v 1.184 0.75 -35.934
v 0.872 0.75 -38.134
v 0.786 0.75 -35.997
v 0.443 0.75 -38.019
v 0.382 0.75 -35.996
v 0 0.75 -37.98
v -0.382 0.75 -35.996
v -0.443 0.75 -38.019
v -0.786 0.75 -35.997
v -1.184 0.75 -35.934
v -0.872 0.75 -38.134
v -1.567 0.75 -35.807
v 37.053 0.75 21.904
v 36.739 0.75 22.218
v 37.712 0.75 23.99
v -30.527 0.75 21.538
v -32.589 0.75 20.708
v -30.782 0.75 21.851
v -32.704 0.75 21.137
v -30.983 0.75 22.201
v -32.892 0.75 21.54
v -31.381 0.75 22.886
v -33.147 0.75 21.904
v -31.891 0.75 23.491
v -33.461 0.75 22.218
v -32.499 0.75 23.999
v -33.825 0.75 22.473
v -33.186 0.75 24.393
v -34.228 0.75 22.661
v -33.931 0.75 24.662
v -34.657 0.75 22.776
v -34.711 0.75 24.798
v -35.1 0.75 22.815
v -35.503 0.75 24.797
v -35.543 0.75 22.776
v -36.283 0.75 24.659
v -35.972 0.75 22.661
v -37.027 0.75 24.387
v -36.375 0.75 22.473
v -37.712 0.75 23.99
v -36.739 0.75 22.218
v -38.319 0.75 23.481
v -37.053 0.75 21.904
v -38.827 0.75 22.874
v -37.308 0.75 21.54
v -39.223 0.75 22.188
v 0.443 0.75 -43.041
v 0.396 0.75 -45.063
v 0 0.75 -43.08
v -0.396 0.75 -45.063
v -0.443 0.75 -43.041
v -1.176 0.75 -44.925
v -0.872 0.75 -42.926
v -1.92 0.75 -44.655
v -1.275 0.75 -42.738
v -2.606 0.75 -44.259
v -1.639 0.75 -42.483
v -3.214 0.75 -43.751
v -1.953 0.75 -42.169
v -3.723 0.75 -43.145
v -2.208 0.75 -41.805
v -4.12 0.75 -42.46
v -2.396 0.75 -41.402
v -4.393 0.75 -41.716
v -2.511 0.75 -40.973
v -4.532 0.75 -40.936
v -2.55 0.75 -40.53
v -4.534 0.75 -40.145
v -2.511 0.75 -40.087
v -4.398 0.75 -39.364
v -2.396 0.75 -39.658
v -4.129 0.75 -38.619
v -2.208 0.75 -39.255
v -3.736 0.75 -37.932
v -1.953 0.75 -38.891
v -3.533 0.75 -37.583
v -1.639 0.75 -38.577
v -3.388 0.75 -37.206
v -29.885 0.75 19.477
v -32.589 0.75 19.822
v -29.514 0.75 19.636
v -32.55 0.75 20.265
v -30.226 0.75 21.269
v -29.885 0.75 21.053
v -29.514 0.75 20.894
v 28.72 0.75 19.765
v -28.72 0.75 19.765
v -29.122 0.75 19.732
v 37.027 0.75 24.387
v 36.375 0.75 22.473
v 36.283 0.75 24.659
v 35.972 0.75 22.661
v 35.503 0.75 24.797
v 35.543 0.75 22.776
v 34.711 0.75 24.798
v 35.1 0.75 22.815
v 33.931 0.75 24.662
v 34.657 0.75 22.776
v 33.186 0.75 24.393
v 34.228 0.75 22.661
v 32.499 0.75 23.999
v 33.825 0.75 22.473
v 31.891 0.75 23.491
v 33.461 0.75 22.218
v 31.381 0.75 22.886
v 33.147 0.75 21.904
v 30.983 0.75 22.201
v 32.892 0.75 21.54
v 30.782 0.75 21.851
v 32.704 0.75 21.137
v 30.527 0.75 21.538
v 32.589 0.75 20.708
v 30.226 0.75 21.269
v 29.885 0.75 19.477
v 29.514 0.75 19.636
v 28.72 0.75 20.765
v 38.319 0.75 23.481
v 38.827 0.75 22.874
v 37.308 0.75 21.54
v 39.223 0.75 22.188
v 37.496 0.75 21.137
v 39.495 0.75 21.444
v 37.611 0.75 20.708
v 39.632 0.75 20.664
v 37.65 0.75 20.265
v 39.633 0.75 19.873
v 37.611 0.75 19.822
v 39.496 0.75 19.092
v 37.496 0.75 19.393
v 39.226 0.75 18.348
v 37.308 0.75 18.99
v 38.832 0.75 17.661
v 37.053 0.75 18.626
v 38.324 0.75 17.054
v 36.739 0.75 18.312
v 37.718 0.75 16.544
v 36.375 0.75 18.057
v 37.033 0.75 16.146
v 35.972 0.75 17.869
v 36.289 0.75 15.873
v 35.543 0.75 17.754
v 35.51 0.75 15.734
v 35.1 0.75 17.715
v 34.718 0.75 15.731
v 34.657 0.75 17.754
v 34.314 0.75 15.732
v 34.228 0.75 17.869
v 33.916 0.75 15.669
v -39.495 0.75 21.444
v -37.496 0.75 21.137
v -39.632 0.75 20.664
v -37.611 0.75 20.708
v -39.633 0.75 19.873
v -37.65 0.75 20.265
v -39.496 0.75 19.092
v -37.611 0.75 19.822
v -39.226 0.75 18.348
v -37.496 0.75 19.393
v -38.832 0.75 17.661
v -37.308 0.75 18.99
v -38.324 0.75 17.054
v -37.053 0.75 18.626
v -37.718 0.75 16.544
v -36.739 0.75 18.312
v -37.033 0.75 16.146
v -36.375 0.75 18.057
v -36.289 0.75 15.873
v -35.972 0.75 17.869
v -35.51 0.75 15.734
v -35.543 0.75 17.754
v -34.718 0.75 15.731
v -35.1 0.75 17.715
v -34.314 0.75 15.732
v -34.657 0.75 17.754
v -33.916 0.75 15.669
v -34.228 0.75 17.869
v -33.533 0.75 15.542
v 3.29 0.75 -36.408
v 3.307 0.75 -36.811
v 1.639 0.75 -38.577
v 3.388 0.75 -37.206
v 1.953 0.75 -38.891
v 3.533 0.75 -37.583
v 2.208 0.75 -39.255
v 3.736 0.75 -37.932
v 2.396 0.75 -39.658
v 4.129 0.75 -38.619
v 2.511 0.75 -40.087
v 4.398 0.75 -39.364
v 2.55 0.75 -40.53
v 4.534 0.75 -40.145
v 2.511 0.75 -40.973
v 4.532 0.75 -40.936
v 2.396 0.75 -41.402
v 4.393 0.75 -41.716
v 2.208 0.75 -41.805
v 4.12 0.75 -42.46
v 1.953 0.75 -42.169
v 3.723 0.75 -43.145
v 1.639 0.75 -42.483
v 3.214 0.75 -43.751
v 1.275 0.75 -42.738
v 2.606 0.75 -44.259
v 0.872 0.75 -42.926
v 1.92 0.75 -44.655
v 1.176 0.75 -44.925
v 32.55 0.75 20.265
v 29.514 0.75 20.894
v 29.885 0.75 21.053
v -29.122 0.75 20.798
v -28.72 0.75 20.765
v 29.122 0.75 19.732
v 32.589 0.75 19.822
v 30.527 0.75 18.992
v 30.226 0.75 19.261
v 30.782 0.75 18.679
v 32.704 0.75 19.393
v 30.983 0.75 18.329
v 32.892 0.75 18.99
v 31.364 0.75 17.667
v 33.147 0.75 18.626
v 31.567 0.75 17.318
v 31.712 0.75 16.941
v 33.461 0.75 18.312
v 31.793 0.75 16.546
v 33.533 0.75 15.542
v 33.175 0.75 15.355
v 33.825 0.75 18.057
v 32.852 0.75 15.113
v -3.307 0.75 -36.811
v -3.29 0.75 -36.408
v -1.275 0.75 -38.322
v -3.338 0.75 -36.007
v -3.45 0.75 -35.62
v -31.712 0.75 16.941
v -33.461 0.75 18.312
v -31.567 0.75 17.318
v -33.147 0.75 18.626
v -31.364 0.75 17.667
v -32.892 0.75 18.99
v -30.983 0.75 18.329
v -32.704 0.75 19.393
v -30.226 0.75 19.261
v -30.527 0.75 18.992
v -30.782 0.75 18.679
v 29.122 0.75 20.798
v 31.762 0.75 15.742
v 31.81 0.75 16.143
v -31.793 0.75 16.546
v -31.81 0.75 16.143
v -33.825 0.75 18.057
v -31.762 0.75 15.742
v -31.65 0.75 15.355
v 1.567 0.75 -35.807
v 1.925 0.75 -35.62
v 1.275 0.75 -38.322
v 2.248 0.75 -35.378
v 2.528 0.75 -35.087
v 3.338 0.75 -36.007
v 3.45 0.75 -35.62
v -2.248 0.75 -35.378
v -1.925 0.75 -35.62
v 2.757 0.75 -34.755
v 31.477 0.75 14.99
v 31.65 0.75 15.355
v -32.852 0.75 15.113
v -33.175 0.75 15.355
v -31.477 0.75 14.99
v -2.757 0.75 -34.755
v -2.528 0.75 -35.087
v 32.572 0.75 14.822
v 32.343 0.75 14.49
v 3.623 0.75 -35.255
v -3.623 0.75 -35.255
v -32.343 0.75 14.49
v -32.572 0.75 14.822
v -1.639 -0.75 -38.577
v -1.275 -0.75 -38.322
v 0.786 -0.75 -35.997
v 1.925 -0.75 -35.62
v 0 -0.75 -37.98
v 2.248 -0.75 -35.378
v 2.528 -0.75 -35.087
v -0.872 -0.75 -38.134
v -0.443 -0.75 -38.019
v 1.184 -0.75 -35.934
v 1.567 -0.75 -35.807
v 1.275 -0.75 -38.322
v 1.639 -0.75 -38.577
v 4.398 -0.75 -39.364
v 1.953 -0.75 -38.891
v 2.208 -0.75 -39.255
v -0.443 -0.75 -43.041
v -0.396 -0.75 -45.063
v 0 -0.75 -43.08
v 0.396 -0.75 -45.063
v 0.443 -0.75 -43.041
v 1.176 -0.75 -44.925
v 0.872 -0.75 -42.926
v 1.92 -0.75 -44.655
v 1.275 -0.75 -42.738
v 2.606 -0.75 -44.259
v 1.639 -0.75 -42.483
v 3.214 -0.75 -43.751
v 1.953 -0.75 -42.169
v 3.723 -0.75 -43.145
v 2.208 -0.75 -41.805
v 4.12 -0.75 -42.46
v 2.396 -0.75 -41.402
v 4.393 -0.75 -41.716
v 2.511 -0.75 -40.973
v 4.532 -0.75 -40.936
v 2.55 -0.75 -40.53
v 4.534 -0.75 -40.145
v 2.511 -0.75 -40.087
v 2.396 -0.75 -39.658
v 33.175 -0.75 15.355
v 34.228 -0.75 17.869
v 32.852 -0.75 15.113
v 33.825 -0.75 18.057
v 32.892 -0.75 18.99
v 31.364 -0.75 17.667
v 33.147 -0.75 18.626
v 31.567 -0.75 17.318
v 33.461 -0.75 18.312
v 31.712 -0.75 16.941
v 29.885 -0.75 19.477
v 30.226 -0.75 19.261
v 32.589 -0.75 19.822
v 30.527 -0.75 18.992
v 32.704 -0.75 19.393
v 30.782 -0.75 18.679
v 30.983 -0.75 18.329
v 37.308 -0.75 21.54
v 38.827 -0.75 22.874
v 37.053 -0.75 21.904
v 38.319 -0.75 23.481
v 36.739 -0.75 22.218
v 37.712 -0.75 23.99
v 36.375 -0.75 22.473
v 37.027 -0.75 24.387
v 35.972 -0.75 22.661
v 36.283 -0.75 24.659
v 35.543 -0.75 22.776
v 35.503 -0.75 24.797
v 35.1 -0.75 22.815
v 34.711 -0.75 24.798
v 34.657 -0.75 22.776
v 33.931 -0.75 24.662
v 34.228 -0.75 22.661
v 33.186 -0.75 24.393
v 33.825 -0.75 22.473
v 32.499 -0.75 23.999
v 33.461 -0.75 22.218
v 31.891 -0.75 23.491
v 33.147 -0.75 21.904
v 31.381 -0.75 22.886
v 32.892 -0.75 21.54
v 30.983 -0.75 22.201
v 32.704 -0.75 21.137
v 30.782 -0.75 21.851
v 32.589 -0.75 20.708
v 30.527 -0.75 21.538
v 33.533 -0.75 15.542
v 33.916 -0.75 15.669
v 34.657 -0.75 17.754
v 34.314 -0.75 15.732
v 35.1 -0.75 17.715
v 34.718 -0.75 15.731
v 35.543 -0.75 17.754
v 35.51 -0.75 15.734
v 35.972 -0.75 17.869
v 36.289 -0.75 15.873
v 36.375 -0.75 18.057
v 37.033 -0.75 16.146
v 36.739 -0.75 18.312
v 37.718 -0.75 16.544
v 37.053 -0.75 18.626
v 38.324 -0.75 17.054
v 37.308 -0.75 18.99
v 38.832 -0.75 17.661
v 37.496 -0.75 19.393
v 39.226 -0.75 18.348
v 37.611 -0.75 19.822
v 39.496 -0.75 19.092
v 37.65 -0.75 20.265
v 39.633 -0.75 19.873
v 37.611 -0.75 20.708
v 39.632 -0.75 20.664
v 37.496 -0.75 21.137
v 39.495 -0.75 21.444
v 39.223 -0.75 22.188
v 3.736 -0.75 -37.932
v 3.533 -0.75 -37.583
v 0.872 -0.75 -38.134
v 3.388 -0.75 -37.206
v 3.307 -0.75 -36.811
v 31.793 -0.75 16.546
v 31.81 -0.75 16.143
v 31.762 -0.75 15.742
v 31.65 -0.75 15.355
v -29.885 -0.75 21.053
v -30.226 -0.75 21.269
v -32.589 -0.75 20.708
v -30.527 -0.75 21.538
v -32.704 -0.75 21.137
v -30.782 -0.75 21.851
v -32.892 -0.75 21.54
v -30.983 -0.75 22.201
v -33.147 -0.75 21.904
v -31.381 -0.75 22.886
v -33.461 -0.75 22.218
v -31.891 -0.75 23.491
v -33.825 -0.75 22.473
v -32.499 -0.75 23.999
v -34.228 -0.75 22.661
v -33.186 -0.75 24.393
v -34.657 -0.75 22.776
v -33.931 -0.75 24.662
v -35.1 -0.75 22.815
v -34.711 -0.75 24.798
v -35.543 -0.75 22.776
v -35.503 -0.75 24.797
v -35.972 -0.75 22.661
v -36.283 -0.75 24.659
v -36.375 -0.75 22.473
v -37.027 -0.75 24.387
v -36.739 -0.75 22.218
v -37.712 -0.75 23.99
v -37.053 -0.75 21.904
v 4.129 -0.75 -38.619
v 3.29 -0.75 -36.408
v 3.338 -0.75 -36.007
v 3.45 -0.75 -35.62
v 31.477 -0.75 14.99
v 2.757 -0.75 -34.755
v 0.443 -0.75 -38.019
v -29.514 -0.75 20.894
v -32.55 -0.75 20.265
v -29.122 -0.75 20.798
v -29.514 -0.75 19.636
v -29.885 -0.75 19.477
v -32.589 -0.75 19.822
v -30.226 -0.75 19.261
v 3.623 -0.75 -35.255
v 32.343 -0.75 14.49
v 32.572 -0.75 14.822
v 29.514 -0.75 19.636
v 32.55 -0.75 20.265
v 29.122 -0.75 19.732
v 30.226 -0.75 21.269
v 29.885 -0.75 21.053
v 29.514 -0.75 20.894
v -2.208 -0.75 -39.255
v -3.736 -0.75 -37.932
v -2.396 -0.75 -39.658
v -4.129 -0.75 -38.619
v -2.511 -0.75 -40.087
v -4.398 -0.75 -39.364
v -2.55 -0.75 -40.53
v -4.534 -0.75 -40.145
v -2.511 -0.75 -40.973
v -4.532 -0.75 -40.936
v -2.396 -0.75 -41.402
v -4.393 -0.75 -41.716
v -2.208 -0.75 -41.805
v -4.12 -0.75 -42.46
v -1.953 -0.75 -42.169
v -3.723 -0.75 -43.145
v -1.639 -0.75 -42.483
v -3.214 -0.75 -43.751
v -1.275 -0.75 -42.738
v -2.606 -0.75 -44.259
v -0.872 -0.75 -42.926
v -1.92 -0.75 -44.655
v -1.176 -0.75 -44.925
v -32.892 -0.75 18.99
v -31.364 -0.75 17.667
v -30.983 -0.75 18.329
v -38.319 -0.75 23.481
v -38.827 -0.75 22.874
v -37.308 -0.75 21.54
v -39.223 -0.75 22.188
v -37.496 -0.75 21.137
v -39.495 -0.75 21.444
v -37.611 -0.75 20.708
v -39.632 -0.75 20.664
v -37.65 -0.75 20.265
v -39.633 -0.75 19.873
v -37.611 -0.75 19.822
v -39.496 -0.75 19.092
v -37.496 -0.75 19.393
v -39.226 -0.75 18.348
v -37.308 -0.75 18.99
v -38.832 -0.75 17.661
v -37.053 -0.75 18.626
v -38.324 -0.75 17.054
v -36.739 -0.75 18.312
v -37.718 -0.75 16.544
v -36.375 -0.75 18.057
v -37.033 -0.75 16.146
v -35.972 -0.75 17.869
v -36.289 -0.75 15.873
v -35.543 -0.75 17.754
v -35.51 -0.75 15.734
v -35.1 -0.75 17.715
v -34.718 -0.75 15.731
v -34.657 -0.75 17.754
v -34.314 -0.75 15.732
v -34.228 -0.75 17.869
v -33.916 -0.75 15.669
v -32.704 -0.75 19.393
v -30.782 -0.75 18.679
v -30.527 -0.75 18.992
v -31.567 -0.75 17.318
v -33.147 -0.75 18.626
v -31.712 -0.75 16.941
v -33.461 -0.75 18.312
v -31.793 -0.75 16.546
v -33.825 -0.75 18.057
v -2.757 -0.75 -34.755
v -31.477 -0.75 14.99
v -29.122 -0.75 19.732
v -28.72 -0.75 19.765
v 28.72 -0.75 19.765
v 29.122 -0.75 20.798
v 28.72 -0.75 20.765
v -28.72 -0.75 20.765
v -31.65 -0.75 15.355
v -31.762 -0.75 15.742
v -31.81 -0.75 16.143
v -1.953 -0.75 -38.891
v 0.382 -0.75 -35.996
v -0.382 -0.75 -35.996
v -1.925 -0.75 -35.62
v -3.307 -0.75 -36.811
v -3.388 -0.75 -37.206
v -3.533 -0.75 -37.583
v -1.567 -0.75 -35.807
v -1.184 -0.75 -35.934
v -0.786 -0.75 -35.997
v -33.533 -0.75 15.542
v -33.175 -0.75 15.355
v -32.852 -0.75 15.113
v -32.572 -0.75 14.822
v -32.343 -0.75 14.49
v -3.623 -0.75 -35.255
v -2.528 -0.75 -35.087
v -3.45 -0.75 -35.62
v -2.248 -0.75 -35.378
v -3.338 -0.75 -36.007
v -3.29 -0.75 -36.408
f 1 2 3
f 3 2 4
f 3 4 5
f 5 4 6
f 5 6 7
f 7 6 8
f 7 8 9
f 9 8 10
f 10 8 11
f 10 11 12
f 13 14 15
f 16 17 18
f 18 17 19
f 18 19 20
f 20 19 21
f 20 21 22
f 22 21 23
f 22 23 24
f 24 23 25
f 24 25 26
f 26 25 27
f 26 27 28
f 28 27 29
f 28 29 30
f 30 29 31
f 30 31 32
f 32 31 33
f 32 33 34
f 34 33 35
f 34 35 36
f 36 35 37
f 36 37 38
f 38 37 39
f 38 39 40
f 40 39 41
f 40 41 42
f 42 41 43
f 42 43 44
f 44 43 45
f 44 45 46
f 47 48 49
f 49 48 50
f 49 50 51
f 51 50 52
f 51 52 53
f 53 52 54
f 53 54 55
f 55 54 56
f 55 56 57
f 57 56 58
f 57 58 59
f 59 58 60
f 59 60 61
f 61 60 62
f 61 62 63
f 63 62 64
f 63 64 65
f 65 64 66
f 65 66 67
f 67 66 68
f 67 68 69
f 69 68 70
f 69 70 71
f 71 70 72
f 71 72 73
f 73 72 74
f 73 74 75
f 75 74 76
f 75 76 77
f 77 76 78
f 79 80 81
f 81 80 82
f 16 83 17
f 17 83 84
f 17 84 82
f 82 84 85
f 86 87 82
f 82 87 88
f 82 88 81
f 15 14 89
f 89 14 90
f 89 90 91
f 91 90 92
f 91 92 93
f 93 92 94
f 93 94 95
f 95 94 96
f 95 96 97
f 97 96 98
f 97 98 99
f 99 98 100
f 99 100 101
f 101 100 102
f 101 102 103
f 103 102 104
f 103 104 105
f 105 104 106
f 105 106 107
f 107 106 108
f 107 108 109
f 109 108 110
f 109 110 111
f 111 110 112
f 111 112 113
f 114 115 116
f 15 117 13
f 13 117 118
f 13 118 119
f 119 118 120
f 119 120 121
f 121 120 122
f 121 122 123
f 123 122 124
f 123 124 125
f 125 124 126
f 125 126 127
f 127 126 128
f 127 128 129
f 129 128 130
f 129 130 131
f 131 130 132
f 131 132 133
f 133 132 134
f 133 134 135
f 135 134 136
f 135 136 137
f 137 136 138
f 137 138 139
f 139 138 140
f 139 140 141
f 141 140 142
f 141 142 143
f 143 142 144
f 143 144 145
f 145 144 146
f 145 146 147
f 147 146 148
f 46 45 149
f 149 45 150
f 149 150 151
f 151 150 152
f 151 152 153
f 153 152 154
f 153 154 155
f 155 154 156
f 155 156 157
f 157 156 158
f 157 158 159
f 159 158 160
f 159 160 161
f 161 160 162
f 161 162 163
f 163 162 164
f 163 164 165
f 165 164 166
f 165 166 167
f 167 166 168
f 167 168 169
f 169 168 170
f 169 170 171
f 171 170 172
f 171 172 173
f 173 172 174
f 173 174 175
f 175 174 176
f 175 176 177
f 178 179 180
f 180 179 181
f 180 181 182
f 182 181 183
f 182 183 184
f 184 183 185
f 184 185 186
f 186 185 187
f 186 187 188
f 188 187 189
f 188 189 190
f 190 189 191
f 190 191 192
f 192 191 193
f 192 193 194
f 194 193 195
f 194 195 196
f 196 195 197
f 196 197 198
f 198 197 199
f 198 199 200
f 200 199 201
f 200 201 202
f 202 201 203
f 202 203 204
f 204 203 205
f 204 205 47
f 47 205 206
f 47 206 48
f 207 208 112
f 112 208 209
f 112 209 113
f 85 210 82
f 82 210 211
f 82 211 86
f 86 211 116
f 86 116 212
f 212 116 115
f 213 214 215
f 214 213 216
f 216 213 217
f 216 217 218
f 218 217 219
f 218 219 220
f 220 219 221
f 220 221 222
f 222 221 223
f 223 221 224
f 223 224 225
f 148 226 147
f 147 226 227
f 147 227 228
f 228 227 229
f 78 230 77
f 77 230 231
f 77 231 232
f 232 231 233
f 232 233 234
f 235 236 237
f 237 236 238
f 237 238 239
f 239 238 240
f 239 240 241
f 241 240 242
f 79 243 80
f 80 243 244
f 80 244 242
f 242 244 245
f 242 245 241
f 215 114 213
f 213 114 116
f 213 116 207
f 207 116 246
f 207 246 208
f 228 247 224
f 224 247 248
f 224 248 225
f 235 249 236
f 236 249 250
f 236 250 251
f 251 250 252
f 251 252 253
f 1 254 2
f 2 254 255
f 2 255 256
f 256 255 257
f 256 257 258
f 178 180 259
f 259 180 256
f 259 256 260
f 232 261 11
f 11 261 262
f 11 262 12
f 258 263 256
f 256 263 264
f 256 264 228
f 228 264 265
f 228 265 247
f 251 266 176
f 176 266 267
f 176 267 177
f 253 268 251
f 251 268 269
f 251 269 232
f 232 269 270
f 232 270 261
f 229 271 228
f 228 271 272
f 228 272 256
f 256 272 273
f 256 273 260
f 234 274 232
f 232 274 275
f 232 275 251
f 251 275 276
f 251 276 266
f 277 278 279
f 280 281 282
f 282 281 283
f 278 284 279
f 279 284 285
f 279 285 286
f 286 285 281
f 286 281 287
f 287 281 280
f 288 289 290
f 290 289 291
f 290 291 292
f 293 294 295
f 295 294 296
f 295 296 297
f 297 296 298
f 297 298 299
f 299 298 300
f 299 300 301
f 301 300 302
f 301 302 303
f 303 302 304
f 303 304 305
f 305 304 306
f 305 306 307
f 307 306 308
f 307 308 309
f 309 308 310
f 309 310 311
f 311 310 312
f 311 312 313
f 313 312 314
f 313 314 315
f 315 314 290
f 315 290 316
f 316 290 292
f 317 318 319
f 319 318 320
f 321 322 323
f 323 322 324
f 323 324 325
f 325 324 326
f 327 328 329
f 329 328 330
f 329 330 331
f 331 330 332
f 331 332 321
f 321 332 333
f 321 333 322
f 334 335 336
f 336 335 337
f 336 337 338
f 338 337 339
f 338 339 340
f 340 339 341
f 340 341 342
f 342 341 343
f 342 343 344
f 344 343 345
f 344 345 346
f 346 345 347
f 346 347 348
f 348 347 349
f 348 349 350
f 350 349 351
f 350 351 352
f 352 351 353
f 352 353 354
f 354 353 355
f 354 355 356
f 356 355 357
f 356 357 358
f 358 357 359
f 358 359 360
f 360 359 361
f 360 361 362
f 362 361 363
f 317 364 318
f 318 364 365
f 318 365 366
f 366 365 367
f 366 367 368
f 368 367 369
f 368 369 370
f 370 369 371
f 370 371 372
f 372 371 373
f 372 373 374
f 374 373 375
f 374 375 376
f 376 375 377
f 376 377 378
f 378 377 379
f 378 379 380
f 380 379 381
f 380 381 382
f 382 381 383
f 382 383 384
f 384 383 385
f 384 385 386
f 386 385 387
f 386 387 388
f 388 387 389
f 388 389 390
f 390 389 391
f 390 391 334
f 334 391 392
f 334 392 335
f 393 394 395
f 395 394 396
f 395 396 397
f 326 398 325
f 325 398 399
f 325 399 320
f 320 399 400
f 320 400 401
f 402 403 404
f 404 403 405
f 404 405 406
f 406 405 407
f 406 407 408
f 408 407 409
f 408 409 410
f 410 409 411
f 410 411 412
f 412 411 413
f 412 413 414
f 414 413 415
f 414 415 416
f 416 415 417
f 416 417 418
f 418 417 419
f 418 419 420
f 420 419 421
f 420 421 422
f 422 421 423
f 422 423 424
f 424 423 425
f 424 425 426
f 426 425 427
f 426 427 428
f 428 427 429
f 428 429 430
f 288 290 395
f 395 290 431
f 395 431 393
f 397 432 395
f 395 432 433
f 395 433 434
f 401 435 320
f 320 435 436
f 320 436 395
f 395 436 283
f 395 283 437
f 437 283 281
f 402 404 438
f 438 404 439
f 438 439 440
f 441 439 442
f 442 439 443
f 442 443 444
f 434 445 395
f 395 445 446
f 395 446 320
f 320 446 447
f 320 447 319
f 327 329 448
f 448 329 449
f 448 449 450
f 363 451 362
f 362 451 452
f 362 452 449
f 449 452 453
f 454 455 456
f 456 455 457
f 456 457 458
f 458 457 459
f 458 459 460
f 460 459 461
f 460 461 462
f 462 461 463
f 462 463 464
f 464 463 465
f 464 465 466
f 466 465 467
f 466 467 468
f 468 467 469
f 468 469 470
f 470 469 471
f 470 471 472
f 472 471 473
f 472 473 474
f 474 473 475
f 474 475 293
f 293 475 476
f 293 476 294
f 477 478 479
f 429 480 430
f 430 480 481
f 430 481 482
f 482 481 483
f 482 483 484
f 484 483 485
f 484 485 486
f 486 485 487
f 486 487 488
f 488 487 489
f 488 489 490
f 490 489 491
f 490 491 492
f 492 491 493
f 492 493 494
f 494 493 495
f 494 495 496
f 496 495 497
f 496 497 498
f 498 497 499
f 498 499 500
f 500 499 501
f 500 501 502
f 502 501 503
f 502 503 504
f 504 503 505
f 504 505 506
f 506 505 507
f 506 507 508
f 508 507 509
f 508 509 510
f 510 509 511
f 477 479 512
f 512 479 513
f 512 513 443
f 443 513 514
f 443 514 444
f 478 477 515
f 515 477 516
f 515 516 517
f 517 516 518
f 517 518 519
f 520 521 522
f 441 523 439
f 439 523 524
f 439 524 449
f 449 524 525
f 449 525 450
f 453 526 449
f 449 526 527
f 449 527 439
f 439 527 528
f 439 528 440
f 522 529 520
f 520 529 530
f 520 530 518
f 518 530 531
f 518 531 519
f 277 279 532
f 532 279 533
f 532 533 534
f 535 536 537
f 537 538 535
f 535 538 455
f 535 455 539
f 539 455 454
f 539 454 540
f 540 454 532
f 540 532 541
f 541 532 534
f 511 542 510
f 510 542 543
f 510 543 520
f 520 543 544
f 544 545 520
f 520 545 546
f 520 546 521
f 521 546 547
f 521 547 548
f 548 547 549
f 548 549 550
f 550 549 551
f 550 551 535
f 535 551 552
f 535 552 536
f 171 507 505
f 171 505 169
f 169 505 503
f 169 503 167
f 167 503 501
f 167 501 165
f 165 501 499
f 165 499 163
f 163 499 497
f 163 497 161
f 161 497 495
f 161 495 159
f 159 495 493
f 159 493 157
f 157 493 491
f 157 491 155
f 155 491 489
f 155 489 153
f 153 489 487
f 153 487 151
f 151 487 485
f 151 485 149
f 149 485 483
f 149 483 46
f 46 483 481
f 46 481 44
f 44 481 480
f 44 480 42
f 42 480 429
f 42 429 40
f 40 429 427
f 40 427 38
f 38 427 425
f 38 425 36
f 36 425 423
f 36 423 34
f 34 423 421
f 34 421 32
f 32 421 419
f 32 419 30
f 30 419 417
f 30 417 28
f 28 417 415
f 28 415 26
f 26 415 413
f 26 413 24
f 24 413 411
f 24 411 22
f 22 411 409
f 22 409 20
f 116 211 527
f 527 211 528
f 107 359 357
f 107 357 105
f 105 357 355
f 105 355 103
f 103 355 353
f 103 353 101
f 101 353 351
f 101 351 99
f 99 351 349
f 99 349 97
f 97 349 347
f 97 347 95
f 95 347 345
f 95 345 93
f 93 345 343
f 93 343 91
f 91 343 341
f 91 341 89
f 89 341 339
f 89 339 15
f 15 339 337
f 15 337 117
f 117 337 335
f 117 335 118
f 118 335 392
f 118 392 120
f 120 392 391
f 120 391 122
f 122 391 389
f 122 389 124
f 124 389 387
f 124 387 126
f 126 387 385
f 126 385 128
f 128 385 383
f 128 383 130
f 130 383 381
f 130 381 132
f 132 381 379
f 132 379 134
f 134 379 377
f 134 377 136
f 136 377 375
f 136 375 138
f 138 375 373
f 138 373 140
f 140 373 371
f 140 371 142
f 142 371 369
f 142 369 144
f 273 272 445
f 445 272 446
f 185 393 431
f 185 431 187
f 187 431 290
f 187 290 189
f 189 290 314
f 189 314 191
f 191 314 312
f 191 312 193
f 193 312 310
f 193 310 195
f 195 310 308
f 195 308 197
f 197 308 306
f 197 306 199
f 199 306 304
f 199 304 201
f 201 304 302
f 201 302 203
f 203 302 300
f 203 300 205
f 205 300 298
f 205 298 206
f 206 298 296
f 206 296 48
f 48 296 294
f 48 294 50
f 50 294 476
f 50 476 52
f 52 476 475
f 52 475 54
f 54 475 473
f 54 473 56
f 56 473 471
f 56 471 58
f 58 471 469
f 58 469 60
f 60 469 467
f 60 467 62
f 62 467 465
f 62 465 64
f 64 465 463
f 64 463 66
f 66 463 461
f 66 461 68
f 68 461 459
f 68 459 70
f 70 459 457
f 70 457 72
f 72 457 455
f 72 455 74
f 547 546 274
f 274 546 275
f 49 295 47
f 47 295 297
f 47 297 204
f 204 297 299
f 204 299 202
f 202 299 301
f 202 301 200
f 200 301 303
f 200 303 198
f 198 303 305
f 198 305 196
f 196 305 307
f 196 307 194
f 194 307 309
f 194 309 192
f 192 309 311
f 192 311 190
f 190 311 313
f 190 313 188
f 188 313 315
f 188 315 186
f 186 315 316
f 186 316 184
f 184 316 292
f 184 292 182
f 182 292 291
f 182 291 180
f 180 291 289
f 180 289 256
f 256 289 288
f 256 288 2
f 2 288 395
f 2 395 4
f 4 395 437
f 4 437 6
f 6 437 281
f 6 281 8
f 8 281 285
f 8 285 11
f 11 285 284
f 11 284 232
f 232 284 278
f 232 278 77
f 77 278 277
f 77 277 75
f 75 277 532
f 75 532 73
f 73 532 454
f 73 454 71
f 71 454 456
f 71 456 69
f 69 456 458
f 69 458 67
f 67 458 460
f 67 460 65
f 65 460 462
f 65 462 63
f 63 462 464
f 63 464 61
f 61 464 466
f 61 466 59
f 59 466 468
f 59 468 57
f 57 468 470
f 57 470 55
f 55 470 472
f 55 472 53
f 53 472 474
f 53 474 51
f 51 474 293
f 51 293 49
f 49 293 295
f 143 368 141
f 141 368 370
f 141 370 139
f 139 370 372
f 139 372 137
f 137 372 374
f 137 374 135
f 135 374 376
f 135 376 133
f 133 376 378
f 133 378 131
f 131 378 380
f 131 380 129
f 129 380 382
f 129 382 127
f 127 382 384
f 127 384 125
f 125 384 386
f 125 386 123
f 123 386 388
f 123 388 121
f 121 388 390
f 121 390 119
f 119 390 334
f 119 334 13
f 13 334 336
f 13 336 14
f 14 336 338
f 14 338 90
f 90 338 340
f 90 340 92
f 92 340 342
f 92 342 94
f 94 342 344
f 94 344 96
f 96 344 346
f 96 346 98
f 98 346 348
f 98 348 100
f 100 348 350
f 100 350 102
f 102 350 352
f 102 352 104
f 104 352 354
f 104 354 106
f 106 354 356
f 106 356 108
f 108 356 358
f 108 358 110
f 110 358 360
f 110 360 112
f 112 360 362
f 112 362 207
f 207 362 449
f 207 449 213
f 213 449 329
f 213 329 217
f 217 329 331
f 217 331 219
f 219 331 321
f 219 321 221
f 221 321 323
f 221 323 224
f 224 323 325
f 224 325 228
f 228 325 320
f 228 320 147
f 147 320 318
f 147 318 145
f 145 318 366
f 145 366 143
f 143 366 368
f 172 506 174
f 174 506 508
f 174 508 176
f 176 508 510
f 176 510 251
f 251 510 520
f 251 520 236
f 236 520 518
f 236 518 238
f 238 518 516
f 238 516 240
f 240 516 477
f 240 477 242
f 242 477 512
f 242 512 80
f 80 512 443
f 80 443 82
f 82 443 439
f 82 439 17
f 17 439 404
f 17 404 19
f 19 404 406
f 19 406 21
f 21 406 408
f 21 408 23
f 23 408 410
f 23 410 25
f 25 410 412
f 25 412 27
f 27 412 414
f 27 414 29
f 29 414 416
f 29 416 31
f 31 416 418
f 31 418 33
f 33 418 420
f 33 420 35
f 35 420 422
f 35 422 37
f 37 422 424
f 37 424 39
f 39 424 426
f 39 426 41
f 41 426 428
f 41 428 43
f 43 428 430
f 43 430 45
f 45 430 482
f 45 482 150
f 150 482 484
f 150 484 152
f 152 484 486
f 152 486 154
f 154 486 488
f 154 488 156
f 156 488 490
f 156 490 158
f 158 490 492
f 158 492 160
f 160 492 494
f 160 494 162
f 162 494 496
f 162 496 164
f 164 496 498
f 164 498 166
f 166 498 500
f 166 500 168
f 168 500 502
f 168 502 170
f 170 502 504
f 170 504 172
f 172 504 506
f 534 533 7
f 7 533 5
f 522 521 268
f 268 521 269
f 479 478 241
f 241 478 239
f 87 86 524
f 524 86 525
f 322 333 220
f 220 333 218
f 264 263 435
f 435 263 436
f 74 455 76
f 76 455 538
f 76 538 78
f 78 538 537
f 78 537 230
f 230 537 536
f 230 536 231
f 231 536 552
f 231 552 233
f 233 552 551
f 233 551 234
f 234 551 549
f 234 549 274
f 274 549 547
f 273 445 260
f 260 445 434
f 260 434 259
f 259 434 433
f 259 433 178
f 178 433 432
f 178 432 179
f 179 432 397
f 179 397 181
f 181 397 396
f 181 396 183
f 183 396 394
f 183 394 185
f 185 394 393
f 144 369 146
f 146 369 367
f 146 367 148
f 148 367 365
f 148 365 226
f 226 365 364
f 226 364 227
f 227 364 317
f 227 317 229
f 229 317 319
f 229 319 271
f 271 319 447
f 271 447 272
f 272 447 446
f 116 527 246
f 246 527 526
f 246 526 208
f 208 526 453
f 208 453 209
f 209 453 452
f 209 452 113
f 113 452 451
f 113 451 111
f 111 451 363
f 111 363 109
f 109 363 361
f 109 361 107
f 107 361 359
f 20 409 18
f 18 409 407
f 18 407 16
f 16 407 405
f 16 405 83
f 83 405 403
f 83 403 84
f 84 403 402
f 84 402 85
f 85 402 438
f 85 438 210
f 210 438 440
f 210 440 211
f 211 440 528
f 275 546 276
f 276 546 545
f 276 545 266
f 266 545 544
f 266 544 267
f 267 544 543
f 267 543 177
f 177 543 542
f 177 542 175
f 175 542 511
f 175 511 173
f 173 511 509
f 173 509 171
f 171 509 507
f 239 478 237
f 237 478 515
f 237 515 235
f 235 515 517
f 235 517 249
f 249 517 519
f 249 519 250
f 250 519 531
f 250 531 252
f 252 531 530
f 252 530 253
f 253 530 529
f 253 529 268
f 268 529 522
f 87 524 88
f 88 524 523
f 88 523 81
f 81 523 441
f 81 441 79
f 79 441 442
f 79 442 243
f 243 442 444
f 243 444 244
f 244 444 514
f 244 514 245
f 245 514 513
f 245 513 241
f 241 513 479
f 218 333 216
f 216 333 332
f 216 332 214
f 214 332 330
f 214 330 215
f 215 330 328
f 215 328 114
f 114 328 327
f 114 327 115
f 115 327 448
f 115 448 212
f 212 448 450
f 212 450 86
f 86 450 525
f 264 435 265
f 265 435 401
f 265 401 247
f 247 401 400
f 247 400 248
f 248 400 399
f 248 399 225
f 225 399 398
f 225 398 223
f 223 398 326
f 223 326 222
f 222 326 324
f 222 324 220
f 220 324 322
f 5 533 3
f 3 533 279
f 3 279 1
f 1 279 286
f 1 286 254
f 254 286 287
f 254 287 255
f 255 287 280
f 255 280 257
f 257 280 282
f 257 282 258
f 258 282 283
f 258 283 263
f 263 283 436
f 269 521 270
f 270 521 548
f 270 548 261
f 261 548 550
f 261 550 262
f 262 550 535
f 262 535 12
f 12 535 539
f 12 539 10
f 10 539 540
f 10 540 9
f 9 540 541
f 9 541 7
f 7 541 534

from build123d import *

# Parameters (mm, degrees)
SKETCH2_R        = 2.55
MAIN_SHAPE_DEPTH = 0.75
OUTSIDE_FILLET_R = 2.5
INSIDE_FILLET_R  = 2.5


with BuildPart() as part:
    # Sketch2 → main_shape (new body, symmetric)
    with BuildSketch(Plane(origin=(0, 0, 0), x_dir=(1, 0, 0), z_dir=(0, 1, 0))):
        with BuildLine():
            Line((-33.271790687, -16.098443032), (-2.694234717, 36.86343748))
            ThreePointArc((-2.694234717, 36.86343748), (0, 45.079988897), (2.694234717, 36.86343748))
            Line((2.694234717, 36.86343748), (33.271790687, -16.098443032))
            ThreePointArc((33.271790687, -16.098443032), (39.040415587, -22.539994449), (30.57755597, -20.764994449))
            Line((30.57755597, -20.764994449), (-30.57755597, -20.764994449))
            ThreePointArc((-30.57755597, -20.764994449), (-39.040415587, -22.539994449), (-33.271790687, -16.098443032))
        make_face()
        with Locations((0, 40.529988897)):
            Circle(SKETCH2_R, mode=Mode.SUBTRACT)
        with Locations((35.1, -20.264994449)):
            Circle(SKETCH2_R, mode=Mode.SUBTRACT)
        with Locations((-35.1, -20.264994449)):
            Circle(SKETCH2_R, mode=Mode.SUBTRACT)
        with BuildLine():
            Line((-30.57755597, -19.764994449), (30.57755597, -19.764994449))
            ThreePointArc((30.57755597, -19.764994449), (31.159584413, -17.989994449), (32.405765283, -16.598443032))
            Line((32.405765283, -16.598443032), (1.828209313, 36.36343748))
            ThreePointArc((1.828209313, 36.36343748), (0, 35.979988897), (-1.828209313, 36.36343748))
            Line((-1.828209313, 36.36343748), (-32.405765283, -16.598443032))
            ThreePointArc((-32.405765283, -16.598443032), (-31.159584413, -17.989994449), (-30.57755597, -19.764994449))
        make_face(mode=Mode.SUBTRACT)
    extrude(amount=MAIN_SHAPE_DEPTH, both=True)

    # outside_fillet
    outside_fillet_edges = [part.edges().sort_by_distance(p)[0] for p in [
        (-33.271790687, 0, 16.098443032),
        (-2.694234717, 0, -36.86343748),
        (2.694234717, 0, -36.86343748),
        (33.271790687, 0, 16.098443032),
        (30.57755597, 0, 20.764994449),
        (-30.57755597, 0, 20.764994449),
    ]]
    fillet(outside_fillet_edges, radius=OUTSIDE_FILLET_R)

    # inside_fillet
    inside_fillet_edges = [part.edges().sort_by_distance(p)[0] for p in [
        (1.828209313, 0, -36.36343748),
        (-1.828209313, 0, -36.36343748),
        (-32.405765283, 0, 16.598443032),
        (-30.57755597, 0, 19.764994449),
        (30.57755597, 0, 19.764994449),
        (32.405765283, 0, 16.598443032),
    ]]
    fillet(inside_fillet_edges, radius=INSIDE_FILLET_R)


solid = part.part
